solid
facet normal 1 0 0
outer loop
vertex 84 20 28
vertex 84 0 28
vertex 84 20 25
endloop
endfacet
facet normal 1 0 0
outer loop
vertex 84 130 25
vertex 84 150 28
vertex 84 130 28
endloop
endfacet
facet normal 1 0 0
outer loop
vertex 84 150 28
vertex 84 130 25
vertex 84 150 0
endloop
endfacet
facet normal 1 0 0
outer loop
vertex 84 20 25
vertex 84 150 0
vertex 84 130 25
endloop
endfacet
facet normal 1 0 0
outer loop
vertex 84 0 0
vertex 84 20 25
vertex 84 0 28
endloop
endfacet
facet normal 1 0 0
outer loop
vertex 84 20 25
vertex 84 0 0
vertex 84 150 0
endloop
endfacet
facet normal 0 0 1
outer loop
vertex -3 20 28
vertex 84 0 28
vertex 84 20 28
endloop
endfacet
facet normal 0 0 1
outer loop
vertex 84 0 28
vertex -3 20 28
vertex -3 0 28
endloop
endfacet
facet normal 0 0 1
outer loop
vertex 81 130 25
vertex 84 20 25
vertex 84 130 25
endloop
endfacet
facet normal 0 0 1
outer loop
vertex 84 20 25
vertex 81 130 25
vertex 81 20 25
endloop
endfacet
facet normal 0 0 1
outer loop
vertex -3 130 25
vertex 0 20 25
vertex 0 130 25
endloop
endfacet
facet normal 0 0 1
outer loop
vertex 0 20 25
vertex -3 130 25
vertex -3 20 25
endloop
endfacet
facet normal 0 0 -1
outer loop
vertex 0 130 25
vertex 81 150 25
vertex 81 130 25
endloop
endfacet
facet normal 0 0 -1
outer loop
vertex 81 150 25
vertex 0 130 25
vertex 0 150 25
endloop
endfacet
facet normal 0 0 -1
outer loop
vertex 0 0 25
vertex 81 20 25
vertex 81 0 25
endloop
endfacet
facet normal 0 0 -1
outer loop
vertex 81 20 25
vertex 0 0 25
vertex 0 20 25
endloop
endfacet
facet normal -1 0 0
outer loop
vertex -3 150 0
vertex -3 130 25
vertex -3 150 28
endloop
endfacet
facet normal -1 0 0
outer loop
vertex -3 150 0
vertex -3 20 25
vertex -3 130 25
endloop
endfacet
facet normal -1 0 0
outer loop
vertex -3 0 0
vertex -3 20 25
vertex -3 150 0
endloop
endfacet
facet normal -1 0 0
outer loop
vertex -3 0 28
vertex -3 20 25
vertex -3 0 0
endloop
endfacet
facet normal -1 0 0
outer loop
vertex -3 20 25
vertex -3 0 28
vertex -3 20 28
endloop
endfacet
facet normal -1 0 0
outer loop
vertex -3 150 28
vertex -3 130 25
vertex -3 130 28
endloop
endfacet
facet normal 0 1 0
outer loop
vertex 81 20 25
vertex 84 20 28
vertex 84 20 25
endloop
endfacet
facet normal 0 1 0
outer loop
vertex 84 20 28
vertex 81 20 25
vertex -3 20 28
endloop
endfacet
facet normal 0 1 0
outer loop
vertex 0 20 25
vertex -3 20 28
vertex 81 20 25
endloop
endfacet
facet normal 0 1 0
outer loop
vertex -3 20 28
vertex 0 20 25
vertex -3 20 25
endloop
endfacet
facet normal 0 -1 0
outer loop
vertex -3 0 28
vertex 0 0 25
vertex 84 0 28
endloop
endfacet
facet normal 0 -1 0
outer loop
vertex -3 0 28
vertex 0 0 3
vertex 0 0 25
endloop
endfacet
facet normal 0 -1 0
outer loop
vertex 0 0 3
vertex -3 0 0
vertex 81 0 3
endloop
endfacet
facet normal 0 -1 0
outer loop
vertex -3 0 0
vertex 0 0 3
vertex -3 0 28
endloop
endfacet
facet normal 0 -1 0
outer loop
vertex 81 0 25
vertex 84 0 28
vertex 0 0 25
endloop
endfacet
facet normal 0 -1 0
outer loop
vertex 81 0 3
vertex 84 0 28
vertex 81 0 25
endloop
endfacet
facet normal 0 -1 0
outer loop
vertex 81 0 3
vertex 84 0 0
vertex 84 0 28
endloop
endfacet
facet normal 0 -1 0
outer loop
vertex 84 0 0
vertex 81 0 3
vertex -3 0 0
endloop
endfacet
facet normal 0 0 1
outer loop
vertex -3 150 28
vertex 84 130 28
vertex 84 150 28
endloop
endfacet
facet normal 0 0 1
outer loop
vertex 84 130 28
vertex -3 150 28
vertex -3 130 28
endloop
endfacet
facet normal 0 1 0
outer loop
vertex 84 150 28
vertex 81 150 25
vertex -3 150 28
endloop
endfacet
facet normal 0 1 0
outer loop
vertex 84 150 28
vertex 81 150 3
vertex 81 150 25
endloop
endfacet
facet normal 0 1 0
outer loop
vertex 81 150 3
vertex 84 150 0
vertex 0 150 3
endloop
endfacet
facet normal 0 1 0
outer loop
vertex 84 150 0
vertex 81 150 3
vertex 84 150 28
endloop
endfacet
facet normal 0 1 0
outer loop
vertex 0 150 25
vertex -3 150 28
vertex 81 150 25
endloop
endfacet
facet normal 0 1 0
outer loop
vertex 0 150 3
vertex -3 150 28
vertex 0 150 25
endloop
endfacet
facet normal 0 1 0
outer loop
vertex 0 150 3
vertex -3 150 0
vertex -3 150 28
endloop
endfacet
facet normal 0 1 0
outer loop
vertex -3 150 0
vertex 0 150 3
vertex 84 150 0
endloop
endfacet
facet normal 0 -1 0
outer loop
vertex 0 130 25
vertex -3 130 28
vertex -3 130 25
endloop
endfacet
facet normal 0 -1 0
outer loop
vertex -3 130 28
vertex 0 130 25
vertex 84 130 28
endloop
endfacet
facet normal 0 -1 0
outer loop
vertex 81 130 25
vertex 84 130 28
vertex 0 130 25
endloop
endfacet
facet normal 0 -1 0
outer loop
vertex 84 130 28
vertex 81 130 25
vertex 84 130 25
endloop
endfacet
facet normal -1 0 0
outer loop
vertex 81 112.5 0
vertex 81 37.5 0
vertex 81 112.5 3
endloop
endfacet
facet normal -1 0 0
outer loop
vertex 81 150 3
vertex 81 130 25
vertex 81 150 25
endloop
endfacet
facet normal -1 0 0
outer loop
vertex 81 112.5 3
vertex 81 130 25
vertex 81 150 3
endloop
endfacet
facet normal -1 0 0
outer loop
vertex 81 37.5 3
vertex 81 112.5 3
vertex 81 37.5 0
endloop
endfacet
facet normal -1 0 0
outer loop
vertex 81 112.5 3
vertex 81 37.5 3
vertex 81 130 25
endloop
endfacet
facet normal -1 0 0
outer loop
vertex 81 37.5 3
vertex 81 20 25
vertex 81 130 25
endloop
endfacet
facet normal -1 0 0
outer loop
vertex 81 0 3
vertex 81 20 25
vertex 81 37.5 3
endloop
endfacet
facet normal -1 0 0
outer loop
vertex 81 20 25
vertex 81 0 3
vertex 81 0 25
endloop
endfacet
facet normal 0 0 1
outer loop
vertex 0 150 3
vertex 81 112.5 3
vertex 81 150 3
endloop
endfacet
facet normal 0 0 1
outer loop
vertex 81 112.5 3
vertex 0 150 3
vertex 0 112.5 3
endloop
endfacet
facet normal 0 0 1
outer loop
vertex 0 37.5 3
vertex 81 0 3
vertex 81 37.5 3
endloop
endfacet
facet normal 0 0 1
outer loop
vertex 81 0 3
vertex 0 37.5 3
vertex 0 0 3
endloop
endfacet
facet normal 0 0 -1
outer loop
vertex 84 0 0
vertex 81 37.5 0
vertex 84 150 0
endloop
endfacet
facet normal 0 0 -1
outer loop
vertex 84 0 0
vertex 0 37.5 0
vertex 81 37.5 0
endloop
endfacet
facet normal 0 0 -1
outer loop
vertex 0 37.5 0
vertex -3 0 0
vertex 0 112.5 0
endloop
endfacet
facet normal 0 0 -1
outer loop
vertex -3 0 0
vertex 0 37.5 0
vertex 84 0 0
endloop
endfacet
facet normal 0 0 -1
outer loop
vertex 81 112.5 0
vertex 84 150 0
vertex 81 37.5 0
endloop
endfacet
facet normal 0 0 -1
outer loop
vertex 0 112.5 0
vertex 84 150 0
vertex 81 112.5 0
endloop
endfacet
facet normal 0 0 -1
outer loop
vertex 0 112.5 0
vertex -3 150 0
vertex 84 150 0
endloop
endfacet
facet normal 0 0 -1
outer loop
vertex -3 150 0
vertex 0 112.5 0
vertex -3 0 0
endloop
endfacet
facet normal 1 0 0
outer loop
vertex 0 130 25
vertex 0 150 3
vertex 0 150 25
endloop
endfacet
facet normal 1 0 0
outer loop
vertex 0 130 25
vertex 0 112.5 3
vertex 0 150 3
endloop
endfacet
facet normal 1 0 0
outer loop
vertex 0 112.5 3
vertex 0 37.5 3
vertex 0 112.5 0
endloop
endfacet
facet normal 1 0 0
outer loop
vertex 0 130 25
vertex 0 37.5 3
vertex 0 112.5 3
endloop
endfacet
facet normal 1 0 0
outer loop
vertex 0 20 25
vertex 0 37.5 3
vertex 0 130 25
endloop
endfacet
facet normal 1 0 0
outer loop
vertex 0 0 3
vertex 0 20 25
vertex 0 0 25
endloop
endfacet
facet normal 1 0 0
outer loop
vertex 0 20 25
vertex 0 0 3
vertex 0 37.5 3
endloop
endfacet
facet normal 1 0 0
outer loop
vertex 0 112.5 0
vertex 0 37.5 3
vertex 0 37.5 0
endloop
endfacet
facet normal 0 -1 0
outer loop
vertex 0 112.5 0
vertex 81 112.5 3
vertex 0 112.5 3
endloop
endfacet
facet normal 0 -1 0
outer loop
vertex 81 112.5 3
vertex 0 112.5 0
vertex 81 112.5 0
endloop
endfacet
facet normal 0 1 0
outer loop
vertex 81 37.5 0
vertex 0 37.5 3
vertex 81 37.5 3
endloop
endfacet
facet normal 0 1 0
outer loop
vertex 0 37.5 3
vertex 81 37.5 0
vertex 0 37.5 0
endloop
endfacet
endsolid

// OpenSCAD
// phone holder

padding = 1;

x = 80 + padding;
y = 149+ padding;

charger_h = 24 + padding;

base_h = 3;

top_holder_y = 20;

difference(){
    color("gold")
    cube([x,y,base_h]);

    
    translate([0,y/4,0])
    cube([x,y/2,base_h]);
}

color("red")
translate([-base_h,0,0])
cube([base_h,y,charger_h]);

color("red")
translate([x,0,0])
cube([base_h,y,charger_h]);


difference(){
    union(){
translate([-base_h,
           0,
           charger_h])
cube([x + base_h *2,
      top_holder_y,
      base_h]);

translate([-base_h,
           y - top_holder_y,
           charger_h])
cube([x + base_h *2,
      top_holder_y,
      base_h]);
    }
        translate([x/4,0,0])
    cube([x/2,y,20]);
    }
